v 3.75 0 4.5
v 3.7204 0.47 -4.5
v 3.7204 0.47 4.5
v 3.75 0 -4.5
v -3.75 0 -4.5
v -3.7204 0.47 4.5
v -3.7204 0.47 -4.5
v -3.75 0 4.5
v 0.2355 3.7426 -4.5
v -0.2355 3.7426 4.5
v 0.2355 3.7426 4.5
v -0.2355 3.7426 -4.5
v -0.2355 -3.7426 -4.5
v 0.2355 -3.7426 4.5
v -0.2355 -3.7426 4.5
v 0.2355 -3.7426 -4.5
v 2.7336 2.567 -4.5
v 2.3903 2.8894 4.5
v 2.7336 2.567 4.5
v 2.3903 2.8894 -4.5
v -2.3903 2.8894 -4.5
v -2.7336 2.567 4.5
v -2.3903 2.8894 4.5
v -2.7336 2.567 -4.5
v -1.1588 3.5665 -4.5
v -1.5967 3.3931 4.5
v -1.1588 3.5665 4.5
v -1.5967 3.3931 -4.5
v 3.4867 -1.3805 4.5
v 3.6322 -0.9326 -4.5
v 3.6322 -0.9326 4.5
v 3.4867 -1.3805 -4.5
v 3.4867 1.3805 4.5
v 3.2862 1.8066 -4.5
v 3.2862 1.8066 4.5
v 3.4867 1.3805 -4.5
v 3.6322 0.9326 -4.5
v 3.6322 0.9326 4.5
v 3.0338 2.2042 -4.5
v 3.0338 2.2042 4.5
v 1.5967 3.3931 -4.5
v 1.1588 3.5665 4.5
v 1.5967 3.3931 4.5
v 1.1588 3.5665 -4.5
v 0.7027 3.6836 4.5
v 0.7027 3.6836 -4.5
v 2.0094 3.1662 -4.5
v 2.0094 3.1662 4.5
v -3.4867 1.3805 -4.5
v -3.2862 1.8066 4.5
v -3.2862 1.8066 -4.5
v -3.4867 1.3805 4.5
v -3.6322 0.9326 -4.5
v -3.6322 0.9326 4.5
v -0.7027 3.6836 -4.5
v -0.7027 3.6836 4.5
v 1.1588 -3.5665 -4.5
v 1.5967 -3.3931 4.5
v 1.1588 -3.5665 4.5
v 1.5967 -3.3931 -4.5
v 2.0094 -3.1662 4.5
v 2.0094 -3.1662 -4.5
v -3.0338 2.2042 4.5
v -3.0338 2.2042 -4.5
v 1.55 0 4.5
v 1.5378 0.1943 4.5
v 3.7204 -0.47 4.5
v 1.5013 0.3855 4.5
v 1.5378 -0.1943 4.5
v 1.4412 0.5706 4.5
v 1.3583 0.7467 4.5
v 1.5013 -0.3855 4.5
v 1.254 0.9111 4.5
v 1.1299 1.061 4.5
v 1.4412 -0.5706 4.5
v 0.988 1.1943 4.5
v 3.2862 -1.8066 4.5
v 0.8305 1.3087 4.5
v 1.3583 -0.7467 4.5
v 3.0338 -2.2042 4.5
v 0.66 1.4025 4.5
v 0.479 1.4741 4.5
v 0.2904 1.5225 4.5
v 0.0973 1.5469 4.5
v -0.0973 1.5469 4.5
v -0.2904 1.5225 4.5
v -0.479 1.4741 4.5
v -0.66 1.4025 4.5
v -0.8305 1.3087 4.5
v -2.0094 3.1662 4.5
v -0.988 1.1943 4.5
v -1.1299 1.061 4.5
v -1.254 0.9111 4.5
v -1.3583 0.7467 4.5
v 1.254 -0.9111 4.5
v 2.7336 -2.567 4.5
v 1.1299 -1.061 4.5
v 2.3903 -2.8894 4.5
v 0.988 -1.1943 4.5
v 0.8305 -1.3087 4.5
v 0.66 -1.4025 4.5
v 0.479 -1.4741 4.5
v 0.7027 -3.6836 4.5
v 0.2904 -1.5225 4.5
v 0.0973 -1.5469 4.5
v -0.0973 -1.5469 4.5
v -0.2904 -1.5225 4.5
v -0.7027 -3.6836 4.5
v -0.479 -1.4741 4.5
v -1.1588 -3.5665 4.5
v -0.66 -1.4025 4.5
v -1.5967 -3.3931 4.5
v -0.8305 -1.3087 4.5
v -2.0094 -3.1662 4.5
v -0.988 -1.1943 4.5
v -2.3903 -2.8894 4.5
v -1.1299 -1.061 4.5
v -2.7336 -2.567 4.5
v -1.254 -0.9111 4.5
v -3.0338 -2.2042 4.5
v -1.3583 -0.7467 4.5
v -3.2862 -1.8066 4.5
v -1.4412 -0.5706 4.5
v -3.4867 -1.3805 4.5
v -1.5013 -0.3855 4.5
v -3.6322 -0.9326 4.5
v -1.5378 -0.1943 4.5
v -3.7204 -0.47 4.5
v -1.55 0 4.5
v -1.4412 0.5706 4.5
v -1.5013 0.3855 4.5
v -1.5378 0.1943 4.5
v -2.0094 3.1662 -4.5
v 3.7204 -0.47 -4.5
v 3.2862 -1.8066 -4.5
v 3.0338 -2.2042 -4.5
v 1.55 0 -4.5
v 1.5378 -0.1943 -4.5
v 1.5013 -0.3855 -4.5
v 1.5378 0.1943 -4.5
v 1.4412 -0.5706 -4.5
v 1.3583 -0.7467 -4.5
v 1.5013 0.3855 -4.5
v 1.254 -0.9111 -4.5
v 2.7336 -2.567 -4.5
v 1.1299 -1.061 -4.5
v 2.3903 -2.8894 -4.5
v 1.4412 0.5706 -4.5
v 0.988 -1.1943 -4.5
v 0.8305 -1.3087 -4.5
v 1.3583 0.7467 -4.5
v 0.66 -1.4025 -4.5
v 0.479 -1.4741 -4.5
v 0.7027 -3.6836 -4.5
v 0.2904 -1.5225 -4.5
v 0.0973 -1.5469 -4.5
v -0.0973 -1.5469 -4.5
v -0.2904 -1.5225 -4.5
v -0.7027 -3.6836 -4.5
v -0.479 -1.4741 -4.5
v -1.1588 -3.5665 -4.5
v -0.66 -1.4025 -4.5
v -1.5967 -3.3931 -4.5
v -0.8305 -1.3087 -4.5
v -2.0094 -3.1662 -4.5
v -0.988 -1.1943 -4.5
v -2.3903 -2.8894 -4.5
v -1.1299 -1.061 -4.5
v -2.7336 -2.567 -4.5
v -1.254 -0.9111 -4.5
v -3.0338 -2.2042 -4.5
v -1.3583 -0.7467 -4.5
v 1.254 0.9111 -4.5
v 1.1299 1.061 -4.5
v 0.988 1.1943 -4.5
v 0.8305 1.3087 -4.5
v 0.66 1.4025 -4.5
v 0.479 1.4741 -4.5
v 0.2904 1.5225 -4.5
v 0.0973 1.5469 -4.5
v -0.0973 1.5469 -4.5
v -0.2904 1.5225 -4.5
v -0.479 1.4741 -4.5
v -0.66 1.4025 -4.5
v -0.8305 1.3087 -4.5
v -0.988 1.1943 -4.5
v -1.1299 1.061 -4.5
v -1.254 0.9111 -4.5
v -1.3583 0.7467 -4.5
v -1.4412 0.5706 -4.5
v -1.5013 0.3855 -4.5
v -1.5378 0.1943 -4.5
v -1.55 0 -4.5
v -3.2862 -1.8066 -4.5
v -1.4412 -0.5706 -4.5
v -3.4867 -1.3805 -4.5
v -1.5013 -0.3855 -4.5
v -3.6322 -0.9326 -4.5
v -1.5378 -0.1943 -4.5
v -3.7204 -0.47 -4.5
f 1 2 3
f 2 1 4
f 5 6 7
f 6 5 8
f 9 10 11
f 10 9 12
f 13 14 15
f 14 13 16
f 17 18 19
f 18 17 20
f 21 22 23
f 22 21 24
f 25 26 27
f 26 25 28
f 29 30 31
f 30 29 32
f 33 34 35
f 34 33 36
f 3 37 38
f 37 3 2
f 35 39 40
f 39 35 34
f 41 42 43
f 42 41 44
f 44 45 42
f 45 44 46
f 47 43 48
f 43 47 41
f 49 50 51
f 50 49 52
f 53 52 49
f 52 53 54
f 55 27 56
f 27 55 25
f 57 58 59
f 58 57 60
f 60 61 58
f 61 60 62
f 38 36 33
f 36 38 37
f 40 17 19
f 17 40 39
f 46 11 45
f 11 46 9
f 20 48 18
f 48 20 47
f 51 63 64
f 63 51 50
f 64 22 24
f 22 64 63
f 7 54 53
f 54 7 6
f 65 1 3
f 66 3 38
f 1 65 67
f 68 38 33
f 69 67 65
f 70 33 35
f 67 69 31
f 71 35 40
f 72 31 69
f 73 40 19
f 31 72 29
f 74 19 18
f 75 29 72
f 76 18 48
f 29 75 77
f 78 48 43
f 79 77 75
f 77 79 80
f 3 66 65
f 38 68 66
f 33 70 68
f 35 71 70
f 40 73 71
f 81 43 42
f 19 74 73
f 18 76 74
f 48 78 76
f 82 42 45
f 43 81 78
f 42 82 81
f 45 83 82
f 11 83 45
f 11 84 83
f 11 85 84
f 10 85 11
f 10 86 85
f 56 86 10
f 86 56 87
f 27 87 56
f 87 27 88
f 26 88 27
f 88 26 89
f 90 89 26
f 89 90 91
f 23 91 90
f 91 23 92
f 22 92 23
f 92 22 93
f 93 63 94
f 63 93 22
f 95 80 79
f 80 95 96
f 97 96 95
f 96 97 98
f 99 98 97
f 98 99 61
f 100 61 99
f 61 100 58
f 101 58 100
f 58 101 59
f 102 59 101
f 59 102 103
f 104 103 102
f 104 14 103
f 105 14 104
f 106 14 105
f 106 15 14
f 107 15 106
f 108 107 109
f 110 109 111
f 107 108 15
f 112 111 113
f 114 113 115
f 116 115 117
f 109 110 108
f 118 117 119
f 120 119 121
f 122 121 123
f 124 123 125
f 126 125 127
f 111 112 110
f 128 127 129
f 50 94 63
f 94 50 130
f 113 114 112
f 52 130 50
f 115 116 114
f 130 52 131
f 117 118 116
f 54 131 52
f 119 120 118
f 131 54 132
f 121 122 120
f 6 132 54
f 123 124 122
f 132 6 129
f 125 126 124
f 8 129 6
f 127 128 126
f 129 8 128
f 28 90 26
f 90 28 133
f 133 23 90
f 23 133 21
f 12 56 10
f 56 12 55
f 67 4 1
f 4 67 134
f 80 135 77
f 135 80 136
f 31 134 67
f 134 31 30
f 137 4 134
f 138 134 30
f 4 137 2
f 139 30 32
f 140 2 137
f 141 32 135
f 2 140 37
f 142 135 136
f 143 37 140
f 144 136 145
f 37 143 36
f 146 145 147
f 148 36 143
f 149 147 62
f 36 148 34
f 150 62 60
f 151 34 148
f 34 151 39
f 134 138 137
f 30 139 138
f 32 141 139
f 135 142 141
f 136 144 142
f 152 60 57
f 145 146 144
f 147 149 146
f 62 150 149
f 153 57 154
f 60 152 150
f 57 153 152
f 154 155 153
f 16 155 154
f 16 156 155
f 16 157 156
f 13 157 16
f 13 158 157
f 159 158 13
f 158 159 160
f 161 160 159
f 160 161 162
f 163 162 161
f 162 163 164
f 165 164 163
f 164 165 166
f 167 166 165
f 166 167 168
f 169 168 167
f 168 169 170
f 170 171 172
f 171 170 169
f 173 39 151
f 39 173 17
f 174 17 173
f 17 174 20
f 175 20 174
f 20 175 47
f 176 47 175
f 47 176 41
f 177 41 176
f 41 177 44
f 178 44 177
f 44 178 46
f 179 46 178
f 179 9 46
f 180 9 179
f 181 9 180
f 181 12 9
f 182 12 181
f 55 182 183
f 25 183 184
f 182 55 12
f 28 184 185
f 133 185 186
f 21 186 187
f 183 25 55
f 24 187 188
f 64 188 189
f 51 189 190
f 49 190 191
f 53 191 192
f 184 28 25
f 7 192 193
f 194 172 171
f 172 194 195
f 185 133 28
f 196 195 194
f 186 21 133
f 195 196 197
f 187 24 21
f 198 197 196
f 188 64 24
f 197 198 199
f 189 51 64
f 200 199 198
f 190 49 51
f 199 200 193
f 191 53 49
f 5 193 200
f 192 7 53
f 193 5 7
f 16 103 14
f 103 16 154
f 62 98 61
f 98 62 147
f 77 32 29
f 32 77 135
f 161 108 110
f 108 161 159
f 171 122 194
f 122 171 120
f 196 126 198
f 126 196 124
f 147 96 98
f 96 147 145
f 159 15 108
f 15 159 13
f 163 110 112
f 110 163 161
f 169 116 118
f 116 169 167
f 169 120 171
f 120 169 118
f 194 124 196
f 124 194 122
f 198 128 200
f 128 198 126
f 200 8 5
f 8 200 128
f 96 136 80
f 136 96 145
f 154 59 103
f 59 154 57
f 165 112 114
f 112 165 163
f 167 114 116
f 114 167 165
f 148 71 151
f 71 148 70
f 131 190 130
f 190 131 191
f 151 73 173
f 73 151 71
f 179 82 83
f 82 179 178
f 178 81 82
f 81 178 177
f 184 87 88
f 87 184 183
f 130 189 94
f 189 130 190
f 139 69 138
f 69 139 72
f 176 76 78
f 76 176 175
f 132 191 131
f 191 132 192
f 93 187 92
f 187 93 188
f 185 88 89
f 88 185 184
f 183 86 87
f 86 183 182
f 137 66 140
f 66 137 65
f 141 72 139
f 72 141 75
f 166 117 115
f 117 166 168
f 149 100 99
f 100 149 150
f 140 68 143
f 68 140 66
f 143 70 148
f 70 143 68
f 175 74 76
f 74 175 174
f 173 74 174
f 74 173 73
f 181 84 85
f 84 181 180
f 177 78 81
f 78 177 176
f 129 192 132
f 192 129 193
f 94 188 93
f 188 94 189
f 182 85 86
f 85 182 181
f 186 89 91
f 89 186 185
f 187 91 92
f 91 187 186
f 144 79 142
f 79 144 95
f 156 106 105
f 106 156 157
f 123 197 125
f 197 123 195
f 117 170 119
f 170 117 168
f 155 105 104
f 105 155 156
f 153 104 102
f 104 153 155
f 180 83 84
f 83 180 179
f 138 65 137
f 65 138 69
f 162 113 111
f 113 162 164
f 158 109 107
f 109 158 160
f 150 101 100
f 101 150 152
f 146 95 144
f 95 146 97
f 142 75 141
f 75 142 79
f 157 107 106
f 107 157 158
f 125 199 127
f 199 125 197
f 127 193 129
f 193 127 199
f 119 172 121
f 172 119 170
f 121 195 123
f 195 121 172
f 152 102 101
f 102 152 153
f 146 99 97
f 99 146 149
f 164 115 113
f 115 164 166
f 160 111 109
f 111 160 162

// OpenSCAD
$fn = 50;


difference() {
	union() {
		translate(v = [0, 0, -4.5000000000]) {
			cylinder(h = 9, r = 3.7500000000);
		}
	}
	union() {
		translate(v = [0, 0, -100.0000000000]) {
			cylinder(h = 200, r = 1.5500000000);
		}
	}
}
